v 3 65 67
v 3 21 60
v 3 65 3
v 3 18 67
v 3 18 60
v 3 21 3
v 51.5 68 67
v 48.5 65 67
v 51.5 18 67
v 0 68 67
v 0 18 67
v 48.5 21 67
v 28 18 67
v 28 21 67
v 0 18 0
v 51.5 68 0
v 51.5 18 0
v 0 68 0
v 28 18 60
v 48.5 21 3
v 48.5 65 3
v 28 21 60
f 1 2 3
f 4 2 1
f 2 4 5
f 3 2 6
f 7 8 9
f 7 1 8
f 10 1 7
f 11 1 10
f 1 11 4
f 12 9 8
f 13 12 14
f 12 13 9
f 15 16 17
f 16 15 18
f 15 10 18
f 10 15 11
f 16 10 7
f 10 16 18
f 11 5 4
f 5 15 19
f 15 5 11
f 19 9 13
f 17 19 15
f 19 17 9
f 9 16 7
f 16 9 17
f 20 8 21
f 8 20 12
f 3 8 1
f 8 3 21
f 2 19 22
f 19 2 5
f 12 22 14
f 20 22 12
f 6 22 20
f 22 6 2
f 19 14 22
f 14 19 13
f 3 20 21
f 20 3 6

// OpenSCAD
//Este codigo es como hacer un clip que se ajusta automaticamente a un acrilico de un espesor z, un largo x a una profunidad y.Generalmente usamos el espesor del acrilico mas 1mm (grosor papel). Ademas se puede prolongar hasta una determinado extra para mayor presion. Con paredes de espesor de 3.
//input
//Medidas acrilico
eAc = 3; //espesor del acrilico
aAc = 100; //ancho del acrilico
iAc = 25; //medidas del inserto de acrilico en el dispositivo.
//Medidas impresion 3D
gp3D = 3; // grosor de la pared impresa en 3D
c3D = 15; //cobertura del plastico que esta superpuesto al acrilico
re3D = 17.5; //radio externo del filtro
ri3D = 13.5; //radio interno del filtro
em3D = 2; //embutido del filtro en la pared 3D
//Medidas extensiones, son utiles para aumentar la superficie de contacto que alica presion sobre el extremo del acrilico.
pEx = 15; //protrusion de la extension desde el final del cuerpo mayor, cuando sale la extension. Suele ser similar al c3D.
aEx = 15; //ancho de la protusion del cuerpo mayor. Suele ser similar al c3D.
//Medidas papel
ePa = 1; //espesor del papel. Considerado para la presion que hara el clip sobre este. Suele ser consierado como 1mm.

//Medidas Source
lSo = 50; //largo de la fuente.
aSo = aAc; //ancho de la fuente. Modificable aunque suele ser del ancho del acrilico.
hSo = 67;

//output
//Medidas del clip
xPl = gp3D; // componente de la pared lateral en el eje x.
yPl = gp3D + c3D; // componente de la pared lateral en el eje y.
zPl = 2*eAc + 2*gp3D + ePa; // componente de la pared lateral en el eje z.
xPp = aAc + 2*gp3D; // componente de la pared posterior en el eje x.
yPp = gp3D; // componente de la pared posterior en el eje y.
zPp = zPl; // componente de la pared posterior en el eje z.
xPs = xPp; // componente de la pared superior en el eje x.
yPs = yPl; // componente de la pared superior en el eje y.
zPs = gp3D; // componente de la pared superior en el eje z.

//SOURCE
translate([0,yPl,0])
    cube([xPl,lSo,hSo]); //left
translate([((aAc/2)+(gp3D/2)-gp3D),yPl,0])
    cube([xPl,lSo,hSo]);//right
translate([0,lSo+yPl-gp3D,0])
    cube([((aAc/2)+(gp3D/2)),yPp,hSo]); //back  
translate([0,yPl,0])
    cube([((aAc/2)+(gp3D/2)),yPp,(hSo - (eAc*2 + ePa))]); //front   
translate([iAc+3,yPl,(hSo - (eAc*2 + ePa))])
    cube([((aAc/2)+(gp3D/2)-iAc-3),yPp,((eAc*2 + ePa))]); //front append
translate([0,yPl,0])
    cube([((aAc/2)+(gp3D/2)),lSo,gp3D]); //base
